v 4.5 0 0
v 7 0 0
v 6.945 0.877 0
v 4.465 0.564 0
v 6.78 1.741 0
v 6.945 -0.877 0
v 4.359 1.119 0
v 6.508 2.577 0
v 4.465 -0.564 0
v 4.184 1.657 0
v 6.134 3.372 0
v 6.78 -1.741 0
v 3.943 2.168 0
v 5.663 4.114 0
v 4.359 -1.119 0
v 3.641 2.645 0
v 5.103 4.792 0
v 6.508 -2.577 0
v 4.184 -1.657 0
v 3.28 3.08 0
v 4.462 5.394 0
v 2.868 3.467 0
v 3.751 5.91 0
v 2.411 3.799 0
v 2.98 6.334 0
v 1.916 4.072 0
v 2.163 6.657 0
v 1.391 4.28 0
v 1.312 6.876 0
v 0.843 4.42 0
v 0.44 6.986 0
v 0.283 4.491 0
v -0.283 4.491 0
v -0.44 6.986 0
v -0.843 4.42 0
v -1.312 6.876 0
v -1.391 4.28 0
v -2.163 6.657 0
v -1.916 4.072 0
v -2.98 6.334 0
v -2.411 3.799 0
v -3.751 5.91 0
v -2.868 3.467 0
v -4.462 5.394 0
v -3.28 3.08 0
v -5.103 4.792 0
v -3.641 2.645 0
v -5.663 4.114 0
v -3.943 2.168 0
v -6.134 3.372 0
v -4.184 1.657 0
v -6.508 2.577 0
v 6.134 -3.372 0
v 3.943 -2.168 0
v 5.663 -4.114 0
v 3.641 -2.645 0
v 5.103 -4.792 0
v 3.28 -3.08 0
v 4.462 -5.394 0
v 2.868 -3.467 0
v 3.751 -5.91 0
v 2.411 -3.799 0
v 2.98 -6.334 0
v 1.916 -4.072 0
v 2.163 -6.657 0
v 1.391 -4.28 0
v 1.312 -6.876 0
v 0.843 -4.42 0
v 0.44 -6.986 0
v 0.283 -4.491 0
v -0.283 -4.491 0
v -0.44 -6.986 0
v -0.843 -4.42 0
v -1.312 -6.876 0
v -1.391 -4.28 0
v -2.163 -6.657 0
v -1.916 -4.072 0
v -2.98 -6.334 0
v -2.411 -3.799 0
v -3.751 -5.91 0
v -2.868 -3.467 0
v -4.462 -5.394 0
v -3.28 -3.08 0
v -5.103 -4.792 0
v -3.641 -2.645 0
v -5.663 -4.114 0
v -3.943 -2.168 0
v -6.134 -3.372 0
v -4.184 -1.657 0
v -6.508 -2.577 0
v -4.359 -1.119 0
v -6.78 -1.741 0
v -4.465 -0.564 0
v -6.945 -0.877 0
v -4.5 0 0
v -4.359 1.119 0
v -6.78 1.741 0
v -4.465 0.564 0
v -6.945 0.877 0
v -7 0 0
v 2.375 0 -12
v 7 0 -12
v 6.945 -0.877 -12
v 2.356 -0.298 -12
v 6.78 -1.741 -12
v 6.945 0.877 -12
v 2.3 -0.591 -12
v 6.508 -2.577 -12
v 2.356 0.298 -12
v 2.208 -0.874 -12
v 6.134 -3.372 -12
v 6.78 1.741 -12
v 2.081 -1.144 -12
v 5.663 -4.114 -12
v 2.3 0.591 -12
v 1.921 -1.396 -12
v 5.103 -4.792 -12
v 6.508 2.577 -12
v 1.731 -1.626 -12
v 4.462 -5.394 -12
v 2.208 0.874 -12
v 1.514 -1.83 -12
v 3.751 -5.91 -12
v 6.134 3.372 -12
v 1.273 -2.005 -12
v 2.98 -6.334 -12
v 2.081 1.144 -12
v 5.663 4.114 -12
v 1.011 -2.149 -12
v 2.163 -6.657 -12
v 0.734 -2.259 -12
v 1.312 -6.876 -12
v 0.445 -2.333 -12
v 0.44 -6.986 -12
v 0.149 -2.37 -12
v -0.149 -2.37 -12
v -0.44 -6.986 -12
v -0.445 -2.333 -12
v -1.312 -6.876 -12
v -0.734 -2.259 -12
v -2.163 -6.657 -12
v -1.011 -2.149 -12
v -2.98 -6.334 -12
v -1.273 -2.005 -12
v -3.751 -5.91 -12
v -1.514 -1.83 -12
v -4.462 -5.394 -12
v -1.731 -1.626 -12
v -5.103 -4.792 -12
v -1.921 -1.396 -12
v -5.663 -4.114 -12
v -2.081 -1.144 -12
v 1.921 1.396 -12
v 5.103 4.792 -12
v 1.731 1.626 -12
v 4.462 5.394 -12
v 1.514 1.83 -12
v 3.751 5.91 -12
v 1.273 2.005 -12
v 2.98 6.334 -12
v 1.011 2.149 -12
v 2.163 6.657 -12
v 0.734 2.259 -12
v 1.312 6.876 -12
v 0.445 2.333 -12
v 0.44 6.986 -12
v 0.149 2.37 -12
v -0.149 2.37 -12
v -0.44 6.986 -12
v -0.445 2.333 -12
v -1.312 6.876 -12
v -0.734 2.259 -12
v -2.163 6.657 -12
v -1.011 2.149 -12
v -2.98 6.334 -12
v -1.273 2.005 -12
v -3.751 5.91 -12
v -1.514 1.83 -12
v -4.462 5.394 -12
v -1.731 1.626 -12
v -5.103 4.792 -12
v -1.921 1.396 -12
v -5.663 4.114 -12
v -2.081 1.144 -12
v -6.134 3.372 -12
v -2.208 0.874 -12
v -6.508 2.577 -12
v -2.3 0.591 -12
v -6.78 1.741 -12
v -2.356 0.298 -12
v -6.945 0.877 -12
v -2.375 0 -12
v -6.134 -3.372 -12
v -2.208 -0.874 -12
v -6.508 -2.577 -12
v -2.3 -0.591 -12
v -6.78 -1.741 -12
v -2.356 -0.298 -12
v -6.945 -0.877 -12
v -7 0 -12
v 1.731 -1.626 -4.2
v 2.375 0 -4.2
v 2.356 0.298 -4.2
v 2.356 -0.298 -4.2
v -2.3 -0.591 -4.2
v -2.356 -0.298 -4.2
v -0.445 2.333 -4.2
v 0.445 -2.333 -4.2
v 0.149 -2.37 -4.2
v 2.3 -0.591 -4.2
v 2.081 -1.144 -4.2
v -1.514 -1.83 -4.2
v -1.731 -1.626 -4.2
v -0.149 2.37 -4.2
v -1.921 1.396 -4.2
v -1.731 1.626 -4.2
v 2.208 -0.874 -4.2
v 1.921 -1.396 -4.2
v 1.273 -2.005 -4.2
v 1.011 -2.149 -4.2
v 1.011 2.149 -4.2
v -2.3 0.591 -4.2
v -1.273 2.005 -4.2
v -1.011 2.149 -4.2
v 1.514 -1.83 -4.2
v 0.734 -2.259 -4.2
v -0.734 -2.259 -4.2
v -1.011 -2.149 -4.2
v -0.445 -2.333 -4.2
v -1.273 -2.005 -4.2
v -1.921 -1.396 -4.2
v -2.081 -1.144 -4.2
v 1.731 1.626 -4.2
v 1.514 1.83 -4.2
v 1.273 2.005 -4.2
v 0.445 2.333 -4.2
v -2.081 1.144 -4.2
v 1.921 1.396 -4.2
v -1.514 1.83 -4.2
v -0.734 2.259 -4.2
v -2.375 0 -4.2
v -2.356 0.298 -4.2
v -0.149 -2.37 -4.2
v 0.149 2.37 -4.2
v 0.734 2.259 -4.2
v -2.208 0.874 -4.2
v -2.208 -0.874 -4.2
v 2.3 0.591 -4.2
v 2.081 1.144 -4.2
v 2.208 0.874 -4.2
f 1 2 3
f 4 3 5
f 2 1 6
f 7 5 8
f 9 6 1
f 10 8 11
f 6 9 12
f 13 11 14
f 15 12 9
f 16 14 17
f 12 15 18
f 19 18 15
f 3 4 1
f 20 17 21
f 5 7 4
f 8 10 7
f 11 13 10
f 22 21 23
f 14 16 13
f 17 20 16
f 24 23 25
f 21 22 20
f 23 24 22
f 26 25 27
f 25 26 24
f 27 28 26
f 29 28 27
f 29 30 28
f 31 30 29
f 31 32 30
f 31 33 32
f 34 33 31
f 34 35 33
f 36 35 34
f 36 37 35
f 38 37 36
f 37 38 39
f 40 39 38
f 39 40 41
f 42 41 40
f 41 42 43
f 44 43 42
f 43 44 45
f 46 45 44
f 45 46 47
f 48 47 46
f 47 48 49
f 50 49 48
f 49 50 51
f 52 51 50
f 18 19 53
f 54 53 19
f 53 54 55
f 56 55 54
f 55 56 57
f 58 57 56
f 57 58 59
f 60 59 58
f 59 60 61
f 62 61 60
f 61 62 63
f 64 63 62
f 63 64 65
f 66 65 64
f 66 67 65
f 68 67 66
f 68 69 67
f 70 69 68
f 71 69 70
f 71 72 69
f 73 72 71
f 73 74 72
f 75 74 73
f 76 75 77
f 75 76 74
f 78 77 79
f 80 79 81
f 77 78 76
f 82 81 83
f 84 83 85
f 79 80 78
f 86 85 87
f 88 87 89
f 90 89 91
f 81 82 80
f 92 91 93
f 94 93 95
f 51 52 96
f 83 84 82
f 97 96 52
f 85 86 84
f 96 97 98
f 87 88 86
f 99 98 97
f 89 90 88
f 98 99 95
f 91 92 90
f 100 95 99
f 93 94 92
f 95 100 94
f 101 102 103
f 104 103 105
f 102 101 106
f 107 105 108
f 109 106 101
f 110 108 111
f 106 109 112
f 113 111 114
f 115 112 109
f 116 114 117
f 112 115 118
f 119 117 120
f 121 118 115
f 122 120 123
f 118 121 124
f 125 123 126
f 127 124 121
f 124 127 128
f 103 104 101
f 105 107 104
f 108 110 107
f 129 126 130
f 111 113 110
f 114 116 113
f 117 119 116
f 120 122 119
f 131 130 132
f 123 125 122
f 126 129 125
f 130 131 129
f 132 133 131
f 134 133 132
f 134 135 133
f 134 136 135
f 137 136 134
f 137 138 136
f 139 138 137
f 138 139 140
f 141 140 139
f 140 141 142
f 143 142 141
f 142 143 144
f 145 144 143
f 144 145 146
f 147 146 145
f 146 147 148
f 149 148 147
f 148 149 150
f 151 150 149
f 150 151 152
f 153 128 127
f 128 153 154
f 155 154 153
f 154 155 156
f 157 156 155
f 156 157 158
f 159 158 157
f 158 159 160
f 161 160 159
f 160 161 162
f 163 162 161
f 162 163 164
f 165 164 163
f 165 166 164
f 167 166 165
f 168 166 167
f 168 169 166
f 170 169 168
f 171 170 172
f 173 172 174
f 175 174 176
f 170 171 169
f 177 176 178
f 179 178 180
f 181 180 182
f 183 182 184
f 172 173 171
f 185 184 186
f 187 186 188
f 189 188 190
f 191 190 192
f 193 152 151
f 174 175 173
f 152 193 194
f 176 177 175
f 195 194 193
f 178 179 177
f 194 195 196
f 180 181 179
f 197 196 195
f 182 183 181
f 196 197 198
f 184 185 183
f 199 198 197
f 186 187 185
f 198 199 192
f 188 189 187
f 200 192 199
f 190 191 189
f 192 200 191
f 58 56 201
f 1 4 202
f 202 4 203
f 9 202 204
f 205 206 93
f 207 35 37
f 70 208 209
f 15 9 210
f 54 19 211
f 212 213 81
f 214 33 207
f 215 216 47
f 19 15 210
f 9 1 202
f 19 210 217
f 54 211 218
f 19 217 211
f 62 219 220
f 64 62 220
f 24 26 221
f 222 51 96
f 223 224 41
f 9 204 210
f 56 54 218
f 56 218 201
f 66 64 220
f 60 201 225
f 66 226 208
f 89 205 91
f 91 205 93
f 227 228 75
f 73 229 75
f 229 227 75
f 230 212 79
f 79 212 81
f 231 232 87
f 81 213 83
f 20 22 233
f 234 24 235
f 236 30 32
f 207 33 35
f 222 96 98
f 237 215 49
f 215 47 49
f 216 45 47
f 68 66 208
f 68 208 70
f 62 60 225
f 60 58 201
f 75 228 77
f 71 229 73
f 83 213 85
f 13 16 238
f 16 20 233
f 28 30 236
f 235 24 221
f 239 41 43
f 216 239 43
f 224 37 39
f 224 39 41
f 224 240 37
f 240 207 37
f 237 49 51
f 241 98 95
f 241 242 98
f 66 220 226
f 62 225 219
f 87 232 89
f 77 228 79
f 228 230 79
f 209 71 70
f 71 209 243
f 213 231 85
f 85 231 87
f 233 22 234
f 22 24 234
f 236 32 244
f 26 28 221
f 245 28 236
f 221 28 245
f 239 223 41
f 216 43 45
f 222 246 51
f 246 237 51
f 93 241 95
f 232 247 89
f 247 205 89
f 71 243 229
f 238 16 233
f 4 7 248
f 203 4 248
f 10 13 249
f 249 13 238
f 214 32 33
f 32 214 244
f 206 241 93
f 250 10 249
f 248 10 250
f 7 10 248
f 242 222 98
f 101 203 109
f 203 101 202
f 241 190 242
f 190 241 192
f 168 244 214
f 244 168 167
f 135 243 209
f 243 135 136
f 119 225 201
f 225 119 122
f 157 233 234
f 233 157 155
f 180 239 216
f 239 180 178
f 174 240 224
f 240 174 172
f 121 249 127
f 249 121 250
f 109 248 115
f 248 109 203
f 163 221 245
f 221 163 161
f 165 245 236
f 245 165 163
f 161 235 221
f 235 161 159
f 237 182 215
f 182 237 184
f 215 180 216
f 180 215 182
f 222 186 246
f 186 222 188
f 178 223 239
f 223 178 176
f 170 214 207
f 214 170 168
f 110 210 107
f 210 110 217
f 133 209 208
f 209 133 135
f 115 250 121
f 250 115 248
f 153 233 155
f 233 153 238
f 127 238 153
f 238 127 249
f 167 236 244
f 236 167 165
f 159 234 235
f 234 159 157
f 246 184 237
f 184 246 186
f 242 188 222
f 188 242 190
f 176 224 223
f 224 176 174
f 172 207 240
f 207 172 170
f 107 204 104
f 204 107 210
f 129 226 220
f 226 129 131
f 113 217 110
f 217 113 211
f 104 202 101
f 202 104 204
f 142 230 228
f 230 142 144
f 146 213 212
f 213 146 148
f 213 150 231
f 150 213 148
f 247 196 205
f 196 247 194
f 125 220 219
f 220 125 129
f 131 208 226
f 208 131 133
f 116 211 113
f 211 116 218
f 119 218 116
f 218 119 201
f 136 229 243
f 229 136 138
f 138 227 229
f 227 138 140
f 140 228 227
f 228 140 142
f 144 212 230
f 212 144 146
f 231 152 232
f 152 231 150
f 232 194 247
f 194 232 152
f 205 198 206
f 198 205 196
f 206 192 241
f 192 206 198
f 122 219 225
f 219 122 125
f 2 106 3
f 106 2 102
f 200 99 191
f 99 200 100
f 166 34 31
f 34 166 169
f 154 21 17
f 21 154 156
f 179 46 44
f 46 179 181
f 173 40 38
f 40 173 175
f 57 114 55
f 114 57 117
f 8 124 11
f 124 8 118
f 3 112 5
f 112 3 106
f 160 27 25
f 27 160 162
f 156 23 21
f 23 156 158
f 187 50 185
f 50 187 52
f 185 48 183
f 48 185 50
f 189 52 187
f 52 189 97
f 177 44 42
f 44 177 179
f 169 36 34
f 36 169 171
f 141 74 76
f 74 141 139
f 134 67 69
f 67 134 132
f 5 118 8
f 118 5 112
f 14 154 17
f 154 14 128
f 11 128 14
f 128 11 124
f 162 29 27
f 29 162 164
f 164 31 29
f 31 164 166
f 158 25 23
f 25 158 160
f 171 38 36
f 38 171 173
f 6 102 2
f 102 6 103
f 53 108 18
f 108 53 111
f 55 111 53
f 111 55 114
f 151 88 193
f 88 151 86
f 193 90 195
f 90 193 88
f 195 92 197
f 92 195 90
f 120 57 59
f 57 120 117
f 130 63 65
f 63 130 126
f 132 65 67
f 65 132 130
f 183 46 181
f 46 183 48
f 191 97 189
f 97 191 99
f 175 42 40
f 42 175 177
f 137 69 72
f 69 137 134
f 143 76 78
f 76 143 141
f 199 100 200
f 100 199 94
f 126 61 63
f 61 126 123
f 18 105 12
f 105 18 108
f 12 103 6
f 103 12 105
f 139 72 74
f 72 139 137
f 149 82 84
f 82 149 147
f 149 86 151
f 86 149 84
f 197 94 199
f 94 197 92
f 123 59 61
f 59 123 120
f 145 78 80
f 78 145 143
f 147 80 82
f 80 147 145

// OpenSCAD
$fn = 50;


difference() {
	union() {
		translate(v = [0, 0, -12.0000000000]) {
			cylinder(h = 12, r = 7.0000000000);
		}
		cylinder(h = 0, r = 17.0000000000);
	}
	union() {
		translate(v = [0, 0, 0]) {
			rotate(a = [0, 0, 0]) {
				difference() {
					union() {
						#translate(v = [0, 0, -12.0000000000]) {
							cylinder(h = 12, r = 2.2500000000);
						}
						#translate(v = [0, 0, -4.2000000000]) {
							cylinder(h = 4.2000000000, r1 = 2.3750000000, r2 = 4.5000000000);
						}
						#translate(v = [0, 0, -12.0000000000]) {
							cylinder(h = 12, r = 2.3750000000);
						}
						#translate(v = [0, 0, -12.0000000000]) {
							cylinder(h = 12, r = 2.2500000000);
						}
					}
					union();
				}
			}
		}
	}
}
